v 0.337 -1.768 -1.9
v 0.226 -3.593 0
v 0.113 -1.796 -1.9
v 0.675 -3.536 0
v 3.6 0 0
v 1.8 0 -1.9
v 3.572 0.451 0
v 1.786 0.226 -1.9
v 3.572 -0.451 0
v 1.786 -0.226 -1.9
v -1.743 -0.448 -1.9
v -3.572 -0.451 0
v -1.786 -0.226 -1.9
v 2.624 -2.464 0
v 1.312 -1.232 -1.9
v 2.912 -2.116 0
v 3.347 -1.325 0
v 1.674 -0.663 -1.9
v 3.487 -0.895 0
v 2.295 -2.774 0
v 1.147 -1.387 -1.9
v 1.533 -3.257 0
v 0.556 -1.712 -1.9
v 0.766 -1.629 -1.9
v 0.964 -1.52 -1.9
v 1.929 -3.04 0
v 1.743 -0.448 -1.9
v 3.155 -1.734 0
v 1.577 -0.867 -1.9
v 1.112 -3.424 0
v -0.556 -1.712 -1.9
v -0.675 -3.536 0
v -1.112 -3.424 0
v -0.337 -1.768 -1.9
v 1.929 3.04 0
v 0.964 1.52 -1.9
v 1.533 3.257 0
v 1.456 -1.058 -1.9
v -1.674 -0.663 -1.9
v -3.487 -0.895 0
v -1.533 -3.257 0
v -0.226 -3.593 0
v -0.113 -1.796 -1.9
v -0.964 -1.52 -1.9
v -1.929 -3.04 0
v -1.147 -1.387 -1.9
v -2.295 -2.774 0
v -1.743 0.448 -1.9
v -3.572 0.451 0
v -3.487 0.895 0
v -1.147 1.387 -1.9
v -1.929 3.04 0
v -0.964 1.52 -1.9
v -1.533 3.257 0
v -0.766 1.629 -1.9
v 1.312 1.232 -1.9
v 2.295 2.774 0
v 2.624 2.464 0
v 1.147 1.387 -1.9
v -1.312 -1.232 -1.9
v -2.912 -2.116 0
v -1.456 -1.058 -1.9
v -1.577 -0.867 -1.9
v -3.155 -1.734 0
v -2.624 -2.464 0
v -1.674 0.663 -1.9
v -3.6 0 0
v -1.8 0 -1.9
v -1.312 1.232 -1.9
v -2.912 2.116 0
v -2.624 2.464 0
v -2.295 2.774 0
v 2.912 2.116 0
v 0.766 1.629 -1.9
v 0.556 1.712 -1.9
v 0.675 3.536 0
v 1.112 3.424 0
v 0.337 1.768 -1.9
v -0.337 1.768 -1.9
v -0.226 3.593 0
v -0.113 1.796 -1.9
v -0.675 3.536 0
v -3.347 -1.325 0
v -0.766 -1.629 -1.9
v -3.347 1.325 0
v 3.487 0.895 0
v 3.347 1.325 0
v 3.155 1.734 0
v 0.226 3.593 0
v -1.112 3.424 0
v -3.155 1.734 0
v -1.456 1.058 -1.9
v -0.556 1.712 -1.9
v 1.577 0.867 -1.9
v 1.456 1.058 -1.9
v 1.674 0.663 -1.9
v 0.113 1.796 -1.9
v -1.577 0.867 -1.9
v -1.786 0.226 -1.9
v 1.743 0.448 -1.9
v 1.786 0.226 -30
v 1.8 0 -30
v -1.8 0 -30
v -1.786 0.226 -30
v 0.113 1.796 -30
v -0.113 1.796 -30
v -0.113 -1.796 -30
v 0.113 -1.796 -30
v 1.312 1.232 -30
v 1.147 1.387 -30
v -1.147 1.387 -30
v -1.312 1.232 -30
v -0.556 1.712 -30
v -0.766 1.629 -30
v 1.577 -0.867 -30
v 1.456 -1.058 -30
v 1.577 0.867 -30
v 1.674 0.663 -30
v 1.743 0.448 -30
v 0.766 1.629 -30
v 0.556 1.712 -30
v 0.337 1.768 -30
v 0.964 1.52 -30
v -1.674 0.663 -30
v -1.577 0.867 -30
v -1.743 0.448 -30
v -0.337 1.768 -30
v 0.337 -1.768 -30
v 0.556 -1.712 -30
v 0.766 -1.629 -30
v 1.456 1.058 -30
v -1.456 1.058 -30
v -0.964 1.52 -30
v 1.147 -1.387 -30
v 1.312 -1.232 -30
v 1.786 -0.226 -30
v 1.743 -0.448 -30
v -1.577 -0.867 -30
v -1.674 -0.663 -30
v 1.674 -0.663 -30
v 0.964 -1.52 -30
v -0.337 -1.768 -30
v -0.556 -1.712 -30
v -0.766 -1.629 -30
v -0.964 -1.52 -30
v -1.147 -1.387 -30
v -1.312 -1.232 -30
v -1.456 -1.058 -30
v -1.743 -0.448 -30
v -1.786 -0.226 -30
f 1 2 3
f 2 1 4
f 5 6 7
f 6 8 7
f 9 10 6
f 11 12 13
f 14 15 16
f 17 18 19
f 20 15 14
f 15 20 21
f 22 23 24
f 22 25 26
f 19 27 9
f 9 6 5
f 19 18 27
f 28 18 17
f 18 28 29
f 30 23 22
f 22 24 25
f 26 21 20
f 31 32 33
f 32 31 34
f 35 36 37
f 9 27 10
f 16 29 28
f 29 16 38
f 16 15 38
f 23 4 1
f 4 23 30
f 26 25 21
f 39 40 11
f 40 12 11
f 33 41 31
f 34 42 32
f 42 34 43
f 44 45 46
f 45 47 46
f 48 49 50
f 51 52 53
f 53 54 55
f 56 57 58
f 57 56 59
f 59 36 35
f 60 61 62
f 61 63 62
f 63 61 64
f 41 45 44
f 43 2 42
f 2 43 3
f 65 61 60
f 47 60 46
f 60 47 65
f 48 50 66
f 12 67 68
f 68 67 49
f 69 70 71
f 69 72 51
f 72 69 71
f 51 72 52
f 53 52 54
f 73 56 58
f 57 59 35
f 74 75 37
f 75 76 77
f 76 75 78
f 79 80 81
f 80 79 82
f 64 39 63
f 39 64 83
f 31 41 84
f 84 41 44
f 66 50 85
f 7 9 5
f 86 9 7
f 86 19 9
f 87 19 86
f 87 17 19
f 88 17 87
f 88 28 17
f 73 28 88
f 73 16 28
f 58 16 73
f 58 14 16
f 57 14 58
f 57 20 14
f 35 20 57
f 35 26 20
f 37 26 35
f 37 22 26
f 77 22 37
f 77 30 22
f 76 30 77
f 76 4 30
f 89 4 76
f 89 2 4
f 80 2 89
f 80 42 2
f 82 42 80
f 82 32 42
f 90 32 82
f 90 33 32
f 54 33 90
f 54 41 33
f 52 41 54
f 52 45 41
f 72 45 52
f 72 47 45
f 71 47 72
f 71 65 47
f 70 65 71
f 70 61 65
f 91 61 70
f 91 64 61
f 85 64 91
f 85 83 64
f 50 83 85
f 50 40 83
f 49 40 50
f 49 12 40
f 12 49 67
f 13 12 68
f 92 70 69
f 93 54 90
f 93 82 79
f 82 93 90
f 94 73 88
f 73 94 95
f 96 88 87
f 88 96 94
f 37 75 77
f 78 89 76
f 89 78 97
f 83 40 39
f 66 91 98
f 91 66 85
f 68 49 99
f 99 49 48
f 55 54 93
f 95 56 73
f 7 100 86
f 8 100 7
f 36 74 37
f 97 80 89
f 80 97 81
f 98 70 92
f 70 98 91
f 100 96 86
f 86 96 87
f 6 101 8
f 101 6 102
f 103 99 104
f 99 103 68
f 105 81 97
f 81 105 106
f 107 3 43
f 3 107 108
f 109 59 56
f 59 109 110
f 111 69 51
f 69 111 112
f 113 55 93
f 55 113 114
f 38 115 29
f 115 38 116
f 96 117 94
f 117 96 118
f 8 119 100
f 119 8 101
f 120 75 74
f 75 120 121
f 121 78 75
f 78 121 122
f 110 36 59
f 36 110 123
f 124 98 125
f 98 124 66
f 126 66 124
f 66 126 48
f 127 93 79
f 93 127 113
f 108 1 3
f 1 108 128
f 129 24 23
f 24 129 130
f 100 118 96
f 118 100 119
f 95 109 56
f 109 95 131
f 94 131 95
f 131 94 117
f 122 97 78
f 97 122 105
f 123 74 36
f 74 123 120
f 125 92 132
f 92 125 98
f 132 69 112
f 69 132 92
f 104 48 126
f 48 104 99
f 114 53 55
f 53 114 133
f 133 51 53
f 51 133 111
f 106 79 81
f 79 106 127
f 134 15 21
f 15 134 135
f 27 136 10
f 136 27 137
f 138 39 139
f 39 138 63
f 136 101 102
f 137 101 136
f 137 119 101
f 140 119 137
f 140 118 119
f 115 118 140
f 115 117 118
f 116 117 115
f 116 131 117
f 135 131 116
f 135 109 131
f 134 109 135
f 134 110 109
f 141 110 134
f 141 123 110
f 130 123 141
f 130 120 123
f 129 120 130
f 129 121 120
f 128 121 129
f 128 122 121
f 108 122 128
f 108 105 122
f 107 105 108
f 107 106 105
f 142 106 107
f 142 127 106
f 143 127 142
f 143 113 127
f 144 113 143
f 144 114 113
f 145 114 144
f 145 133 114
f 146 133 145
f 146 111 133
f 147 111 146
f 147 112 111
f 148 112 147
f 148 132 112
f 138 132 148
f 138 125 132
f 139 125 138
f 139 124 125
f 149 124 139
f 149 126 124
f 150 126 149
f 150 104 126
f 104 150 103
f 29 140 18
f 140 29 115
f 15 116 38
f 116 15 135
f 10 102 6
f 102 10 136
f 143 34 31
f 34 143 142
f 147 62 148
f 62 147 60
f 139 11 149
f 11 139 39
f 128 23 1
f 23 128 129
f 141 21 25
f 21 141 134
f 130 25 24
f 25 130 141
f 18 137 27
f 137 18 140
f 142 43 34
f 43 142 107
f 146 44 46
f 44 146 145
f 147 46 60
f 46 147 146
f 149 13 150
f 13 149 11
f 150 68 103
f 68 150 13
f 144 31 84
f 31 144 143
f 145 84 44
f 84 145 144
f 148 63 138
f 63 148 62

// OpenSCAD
$fn = 50;


difference() {
	union() {
		translate(v = [0, 0, -1.9000000000]) {
			rotate(a = [0, 0, 0]) {
				cylinder(h = 1.9000000000, r1 = 1.8000000000, r2 = 3.6000000000);
			}
		}
		translate(v = [0, 0, -30]) {
			rotate(a = [0, 0, 0]) {
				cylinder(h = 30, r = 1.8000000000);
			}
		}
	}
	union();
}
